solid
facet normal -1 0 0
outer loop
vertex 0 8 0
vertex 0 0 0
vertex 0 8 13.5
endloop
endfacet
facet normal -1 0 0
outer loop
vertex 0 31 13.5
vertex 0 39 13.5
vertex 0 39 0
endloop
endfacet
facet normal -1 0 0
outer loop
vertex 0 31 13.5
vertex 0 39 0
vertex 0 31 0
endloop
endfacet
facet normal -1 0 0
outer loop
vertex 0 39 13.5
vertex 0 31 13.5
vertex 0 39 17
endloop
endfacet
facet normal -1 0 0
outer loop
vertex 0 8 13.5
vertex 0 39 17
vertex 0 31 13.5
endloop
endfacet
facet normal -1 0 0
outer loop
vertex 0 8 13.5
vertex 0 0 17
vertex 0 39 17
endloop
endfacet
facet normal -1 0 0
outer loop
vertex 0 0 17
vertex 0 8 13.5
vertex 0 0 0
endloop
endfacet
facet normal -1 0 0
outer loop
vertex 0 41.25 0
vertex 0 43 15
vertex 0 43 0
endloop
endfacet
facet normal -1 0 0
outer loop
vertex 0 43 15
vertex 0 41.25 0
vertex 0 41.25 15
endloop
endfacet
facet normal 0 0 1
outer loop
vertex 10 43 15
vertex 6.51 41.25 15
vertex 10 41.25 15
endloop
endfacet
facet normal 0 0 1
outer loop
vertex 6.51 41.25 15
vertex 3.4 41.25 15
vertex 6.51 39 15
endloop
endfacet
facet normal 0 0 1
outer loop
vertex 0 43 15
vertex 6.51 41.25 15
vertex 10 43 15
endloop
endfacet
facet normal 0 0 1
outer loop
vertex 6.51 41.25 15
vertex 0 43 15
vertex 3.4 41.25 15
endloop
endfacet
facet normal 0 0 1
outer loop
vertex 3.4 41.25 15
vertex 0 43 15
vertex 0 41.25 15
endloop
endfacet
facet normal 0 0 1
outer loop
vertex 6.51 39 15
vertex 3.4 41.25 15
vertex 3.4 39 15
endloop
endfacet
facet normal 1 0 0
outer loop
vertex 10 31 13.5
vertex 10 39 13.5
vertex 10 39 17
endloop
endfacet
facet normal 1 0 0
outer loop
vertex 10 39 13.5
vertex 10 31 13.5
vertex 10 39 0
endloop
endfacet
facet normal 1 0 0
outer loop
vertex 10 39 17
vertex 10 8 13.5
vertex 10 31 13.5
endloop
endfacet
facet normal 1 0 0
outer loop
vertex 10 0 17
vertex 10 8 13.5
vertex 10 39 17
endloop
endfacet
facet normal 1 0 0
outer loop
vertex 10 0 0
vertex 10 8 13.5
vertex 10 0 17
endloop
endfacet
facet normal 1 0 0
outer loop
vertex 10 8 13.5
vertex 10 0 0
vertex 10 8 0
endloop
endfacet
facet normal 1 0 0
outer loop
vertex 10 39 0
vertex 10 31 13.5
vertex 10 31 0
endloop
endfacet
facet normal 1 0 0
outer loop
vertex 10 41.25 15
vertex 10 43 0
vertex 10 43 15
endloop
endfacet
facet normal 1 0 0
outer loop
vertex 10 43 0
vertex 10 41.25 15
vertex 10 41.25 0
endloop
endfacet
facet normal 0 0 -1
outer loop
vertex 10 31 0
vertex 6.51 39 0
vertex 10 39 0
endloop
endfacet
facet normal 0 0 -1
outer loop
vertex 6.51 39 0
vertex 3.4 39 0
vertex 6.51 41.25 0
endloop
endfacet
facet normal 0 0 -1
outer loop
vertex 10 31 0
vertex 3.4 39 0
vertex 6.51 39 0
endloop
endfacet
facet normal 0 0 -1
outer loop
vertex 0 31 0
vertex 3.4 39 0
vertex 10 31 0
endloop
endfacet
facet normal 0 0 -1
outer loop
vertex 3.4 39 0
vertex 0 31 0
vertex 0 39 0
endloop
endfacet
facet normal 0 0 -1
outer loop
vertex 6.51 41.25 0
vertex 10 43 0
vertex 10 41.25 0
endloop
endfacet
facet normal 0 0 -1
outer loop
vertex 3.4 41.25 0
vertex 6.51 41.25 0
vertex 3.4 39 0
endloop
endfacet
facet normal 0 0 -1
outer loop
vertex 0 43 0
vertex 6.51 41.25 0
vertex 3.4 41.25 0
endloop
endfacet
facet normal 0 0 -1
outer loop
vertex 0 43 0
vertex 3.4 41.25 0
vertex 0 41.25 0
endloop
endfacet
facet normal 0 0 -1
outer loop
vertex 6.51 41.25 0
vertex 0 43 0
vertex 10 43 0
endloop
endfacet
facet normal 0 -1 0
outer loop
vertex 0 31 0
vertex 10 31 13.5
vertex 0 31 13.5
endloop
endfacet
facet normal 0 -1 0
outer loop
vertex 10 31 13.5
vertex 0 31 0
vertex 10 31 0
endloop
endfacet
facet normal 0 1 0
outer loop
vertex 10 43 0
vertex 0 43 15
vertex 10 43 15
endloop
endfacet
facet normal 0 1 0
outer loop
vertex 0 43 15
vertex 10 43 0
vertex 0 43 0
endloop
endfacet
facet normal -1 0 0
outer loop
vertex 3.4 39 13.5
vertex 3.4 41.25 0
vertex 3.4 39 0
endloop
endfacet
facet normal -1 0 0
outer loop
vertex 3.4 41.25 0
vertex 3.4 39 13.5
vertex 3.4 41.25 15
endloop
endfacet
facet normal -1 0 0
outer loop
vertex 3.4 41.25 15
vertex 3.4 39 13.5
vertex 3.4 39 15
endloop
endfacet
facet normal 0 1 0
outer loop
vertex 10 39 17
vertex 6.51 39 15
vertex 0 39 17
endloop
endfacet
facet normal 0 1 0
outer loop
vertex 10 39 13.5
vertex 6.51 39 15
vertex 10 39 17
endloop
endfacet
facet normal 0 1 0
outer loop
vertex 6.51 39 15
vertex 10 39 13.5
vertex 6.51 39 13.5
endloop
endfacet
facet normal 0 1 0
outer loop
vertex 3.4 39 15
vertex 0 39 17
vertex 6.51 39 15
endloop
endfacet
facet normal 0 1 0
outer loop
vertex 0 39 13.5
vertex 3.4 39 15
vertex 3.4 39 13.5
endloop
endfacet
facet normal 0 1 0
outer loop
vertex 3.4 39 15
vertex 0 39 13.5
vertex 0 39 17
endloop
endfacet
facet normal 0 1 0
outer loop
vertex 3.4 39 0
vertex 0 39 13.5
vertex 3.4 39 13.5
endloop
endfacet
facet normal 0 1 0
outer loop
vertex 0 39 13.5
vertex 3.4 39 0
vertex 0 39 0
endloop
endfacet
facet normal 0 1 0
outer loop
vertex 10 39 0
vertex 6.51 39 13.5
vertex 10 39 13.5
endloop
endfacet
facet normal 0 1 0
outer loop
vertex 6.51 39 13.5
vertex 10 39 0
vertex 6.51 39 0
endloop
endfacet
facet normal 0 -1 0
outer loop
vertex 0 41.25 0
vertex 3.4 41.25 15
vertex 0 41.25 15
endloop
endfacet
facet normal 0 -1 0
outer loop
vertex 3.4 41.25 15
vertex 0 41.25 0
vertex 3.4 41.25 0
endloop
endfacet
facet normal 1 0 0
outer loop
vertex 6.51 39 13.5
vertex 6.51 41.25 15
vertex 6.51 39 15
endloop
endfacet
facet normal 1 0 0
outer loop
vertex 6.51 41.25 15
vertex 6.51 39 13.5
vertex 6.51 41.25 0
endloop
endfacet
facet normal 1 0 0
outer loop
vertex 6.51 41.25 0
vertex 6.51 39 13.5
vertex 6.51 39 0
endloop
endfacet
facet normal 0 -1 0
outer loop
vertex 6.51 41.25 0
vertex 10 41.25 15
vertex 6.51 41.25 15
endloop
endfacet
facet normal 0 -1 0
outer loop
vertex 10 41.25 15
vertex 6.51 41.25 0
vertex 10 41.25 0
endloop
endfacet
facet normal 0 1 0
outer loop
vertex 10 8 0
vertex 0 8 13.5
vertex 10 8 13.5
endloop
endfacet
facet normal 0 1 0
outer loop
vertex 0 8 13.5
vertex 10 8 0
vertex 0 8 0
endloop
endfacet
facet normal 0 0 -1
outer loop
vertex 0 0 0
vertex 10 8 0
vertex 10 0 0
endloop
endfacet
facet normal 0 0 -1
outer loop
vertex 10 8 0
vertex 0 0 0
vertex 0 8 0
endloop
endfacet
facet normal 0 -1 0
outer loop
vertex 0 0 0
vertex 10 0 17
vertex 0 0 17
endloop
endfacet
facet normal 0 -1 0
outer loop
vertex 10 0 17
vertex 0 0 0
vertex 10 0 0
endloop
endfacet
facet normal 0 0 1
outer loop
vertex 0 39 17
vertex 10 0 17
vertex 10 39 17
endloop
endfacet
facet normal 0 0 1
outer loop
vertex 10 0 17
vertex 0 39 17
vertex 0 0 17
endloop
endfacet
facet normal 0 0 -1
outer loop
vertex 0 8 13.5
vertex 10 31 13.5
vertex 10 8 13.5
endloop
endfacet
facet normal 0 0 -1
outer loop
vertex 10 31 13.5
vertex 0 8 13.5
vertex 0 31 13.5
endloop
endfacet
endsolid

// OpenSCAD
widthOfMount=10;
heightOfMount=39;
depthOfMount=15;
lengthOfCutout=3.5; depthOfCutout=2.25;

cube([widthOfMount, 8, depthOfMount]);

difference(){
    translate([0,31,0]) cube([widthOfMount, 12, depthOfMount]);
    
    translate([-0.1,heightOfMount,-0.1]) cube([lengthOfCutout, depthOfCutout, 21]);
    
    translate([widthOfMount-lengthOfCutout+0.01,heightOfMount,-0.1]) cube([lengthOfCutout, depthOfCutout, 21]);
}


translate([0,0,13.5]) cube([widthOfMount, heightOfMount, 3.5]);

// Make servo model
//translate([-6.5, 20.5, 6]) rotate([90,0,0]) rotate([0,90,0]) translate([-16.5,-50,16.5])
    //import("servo.stl");
